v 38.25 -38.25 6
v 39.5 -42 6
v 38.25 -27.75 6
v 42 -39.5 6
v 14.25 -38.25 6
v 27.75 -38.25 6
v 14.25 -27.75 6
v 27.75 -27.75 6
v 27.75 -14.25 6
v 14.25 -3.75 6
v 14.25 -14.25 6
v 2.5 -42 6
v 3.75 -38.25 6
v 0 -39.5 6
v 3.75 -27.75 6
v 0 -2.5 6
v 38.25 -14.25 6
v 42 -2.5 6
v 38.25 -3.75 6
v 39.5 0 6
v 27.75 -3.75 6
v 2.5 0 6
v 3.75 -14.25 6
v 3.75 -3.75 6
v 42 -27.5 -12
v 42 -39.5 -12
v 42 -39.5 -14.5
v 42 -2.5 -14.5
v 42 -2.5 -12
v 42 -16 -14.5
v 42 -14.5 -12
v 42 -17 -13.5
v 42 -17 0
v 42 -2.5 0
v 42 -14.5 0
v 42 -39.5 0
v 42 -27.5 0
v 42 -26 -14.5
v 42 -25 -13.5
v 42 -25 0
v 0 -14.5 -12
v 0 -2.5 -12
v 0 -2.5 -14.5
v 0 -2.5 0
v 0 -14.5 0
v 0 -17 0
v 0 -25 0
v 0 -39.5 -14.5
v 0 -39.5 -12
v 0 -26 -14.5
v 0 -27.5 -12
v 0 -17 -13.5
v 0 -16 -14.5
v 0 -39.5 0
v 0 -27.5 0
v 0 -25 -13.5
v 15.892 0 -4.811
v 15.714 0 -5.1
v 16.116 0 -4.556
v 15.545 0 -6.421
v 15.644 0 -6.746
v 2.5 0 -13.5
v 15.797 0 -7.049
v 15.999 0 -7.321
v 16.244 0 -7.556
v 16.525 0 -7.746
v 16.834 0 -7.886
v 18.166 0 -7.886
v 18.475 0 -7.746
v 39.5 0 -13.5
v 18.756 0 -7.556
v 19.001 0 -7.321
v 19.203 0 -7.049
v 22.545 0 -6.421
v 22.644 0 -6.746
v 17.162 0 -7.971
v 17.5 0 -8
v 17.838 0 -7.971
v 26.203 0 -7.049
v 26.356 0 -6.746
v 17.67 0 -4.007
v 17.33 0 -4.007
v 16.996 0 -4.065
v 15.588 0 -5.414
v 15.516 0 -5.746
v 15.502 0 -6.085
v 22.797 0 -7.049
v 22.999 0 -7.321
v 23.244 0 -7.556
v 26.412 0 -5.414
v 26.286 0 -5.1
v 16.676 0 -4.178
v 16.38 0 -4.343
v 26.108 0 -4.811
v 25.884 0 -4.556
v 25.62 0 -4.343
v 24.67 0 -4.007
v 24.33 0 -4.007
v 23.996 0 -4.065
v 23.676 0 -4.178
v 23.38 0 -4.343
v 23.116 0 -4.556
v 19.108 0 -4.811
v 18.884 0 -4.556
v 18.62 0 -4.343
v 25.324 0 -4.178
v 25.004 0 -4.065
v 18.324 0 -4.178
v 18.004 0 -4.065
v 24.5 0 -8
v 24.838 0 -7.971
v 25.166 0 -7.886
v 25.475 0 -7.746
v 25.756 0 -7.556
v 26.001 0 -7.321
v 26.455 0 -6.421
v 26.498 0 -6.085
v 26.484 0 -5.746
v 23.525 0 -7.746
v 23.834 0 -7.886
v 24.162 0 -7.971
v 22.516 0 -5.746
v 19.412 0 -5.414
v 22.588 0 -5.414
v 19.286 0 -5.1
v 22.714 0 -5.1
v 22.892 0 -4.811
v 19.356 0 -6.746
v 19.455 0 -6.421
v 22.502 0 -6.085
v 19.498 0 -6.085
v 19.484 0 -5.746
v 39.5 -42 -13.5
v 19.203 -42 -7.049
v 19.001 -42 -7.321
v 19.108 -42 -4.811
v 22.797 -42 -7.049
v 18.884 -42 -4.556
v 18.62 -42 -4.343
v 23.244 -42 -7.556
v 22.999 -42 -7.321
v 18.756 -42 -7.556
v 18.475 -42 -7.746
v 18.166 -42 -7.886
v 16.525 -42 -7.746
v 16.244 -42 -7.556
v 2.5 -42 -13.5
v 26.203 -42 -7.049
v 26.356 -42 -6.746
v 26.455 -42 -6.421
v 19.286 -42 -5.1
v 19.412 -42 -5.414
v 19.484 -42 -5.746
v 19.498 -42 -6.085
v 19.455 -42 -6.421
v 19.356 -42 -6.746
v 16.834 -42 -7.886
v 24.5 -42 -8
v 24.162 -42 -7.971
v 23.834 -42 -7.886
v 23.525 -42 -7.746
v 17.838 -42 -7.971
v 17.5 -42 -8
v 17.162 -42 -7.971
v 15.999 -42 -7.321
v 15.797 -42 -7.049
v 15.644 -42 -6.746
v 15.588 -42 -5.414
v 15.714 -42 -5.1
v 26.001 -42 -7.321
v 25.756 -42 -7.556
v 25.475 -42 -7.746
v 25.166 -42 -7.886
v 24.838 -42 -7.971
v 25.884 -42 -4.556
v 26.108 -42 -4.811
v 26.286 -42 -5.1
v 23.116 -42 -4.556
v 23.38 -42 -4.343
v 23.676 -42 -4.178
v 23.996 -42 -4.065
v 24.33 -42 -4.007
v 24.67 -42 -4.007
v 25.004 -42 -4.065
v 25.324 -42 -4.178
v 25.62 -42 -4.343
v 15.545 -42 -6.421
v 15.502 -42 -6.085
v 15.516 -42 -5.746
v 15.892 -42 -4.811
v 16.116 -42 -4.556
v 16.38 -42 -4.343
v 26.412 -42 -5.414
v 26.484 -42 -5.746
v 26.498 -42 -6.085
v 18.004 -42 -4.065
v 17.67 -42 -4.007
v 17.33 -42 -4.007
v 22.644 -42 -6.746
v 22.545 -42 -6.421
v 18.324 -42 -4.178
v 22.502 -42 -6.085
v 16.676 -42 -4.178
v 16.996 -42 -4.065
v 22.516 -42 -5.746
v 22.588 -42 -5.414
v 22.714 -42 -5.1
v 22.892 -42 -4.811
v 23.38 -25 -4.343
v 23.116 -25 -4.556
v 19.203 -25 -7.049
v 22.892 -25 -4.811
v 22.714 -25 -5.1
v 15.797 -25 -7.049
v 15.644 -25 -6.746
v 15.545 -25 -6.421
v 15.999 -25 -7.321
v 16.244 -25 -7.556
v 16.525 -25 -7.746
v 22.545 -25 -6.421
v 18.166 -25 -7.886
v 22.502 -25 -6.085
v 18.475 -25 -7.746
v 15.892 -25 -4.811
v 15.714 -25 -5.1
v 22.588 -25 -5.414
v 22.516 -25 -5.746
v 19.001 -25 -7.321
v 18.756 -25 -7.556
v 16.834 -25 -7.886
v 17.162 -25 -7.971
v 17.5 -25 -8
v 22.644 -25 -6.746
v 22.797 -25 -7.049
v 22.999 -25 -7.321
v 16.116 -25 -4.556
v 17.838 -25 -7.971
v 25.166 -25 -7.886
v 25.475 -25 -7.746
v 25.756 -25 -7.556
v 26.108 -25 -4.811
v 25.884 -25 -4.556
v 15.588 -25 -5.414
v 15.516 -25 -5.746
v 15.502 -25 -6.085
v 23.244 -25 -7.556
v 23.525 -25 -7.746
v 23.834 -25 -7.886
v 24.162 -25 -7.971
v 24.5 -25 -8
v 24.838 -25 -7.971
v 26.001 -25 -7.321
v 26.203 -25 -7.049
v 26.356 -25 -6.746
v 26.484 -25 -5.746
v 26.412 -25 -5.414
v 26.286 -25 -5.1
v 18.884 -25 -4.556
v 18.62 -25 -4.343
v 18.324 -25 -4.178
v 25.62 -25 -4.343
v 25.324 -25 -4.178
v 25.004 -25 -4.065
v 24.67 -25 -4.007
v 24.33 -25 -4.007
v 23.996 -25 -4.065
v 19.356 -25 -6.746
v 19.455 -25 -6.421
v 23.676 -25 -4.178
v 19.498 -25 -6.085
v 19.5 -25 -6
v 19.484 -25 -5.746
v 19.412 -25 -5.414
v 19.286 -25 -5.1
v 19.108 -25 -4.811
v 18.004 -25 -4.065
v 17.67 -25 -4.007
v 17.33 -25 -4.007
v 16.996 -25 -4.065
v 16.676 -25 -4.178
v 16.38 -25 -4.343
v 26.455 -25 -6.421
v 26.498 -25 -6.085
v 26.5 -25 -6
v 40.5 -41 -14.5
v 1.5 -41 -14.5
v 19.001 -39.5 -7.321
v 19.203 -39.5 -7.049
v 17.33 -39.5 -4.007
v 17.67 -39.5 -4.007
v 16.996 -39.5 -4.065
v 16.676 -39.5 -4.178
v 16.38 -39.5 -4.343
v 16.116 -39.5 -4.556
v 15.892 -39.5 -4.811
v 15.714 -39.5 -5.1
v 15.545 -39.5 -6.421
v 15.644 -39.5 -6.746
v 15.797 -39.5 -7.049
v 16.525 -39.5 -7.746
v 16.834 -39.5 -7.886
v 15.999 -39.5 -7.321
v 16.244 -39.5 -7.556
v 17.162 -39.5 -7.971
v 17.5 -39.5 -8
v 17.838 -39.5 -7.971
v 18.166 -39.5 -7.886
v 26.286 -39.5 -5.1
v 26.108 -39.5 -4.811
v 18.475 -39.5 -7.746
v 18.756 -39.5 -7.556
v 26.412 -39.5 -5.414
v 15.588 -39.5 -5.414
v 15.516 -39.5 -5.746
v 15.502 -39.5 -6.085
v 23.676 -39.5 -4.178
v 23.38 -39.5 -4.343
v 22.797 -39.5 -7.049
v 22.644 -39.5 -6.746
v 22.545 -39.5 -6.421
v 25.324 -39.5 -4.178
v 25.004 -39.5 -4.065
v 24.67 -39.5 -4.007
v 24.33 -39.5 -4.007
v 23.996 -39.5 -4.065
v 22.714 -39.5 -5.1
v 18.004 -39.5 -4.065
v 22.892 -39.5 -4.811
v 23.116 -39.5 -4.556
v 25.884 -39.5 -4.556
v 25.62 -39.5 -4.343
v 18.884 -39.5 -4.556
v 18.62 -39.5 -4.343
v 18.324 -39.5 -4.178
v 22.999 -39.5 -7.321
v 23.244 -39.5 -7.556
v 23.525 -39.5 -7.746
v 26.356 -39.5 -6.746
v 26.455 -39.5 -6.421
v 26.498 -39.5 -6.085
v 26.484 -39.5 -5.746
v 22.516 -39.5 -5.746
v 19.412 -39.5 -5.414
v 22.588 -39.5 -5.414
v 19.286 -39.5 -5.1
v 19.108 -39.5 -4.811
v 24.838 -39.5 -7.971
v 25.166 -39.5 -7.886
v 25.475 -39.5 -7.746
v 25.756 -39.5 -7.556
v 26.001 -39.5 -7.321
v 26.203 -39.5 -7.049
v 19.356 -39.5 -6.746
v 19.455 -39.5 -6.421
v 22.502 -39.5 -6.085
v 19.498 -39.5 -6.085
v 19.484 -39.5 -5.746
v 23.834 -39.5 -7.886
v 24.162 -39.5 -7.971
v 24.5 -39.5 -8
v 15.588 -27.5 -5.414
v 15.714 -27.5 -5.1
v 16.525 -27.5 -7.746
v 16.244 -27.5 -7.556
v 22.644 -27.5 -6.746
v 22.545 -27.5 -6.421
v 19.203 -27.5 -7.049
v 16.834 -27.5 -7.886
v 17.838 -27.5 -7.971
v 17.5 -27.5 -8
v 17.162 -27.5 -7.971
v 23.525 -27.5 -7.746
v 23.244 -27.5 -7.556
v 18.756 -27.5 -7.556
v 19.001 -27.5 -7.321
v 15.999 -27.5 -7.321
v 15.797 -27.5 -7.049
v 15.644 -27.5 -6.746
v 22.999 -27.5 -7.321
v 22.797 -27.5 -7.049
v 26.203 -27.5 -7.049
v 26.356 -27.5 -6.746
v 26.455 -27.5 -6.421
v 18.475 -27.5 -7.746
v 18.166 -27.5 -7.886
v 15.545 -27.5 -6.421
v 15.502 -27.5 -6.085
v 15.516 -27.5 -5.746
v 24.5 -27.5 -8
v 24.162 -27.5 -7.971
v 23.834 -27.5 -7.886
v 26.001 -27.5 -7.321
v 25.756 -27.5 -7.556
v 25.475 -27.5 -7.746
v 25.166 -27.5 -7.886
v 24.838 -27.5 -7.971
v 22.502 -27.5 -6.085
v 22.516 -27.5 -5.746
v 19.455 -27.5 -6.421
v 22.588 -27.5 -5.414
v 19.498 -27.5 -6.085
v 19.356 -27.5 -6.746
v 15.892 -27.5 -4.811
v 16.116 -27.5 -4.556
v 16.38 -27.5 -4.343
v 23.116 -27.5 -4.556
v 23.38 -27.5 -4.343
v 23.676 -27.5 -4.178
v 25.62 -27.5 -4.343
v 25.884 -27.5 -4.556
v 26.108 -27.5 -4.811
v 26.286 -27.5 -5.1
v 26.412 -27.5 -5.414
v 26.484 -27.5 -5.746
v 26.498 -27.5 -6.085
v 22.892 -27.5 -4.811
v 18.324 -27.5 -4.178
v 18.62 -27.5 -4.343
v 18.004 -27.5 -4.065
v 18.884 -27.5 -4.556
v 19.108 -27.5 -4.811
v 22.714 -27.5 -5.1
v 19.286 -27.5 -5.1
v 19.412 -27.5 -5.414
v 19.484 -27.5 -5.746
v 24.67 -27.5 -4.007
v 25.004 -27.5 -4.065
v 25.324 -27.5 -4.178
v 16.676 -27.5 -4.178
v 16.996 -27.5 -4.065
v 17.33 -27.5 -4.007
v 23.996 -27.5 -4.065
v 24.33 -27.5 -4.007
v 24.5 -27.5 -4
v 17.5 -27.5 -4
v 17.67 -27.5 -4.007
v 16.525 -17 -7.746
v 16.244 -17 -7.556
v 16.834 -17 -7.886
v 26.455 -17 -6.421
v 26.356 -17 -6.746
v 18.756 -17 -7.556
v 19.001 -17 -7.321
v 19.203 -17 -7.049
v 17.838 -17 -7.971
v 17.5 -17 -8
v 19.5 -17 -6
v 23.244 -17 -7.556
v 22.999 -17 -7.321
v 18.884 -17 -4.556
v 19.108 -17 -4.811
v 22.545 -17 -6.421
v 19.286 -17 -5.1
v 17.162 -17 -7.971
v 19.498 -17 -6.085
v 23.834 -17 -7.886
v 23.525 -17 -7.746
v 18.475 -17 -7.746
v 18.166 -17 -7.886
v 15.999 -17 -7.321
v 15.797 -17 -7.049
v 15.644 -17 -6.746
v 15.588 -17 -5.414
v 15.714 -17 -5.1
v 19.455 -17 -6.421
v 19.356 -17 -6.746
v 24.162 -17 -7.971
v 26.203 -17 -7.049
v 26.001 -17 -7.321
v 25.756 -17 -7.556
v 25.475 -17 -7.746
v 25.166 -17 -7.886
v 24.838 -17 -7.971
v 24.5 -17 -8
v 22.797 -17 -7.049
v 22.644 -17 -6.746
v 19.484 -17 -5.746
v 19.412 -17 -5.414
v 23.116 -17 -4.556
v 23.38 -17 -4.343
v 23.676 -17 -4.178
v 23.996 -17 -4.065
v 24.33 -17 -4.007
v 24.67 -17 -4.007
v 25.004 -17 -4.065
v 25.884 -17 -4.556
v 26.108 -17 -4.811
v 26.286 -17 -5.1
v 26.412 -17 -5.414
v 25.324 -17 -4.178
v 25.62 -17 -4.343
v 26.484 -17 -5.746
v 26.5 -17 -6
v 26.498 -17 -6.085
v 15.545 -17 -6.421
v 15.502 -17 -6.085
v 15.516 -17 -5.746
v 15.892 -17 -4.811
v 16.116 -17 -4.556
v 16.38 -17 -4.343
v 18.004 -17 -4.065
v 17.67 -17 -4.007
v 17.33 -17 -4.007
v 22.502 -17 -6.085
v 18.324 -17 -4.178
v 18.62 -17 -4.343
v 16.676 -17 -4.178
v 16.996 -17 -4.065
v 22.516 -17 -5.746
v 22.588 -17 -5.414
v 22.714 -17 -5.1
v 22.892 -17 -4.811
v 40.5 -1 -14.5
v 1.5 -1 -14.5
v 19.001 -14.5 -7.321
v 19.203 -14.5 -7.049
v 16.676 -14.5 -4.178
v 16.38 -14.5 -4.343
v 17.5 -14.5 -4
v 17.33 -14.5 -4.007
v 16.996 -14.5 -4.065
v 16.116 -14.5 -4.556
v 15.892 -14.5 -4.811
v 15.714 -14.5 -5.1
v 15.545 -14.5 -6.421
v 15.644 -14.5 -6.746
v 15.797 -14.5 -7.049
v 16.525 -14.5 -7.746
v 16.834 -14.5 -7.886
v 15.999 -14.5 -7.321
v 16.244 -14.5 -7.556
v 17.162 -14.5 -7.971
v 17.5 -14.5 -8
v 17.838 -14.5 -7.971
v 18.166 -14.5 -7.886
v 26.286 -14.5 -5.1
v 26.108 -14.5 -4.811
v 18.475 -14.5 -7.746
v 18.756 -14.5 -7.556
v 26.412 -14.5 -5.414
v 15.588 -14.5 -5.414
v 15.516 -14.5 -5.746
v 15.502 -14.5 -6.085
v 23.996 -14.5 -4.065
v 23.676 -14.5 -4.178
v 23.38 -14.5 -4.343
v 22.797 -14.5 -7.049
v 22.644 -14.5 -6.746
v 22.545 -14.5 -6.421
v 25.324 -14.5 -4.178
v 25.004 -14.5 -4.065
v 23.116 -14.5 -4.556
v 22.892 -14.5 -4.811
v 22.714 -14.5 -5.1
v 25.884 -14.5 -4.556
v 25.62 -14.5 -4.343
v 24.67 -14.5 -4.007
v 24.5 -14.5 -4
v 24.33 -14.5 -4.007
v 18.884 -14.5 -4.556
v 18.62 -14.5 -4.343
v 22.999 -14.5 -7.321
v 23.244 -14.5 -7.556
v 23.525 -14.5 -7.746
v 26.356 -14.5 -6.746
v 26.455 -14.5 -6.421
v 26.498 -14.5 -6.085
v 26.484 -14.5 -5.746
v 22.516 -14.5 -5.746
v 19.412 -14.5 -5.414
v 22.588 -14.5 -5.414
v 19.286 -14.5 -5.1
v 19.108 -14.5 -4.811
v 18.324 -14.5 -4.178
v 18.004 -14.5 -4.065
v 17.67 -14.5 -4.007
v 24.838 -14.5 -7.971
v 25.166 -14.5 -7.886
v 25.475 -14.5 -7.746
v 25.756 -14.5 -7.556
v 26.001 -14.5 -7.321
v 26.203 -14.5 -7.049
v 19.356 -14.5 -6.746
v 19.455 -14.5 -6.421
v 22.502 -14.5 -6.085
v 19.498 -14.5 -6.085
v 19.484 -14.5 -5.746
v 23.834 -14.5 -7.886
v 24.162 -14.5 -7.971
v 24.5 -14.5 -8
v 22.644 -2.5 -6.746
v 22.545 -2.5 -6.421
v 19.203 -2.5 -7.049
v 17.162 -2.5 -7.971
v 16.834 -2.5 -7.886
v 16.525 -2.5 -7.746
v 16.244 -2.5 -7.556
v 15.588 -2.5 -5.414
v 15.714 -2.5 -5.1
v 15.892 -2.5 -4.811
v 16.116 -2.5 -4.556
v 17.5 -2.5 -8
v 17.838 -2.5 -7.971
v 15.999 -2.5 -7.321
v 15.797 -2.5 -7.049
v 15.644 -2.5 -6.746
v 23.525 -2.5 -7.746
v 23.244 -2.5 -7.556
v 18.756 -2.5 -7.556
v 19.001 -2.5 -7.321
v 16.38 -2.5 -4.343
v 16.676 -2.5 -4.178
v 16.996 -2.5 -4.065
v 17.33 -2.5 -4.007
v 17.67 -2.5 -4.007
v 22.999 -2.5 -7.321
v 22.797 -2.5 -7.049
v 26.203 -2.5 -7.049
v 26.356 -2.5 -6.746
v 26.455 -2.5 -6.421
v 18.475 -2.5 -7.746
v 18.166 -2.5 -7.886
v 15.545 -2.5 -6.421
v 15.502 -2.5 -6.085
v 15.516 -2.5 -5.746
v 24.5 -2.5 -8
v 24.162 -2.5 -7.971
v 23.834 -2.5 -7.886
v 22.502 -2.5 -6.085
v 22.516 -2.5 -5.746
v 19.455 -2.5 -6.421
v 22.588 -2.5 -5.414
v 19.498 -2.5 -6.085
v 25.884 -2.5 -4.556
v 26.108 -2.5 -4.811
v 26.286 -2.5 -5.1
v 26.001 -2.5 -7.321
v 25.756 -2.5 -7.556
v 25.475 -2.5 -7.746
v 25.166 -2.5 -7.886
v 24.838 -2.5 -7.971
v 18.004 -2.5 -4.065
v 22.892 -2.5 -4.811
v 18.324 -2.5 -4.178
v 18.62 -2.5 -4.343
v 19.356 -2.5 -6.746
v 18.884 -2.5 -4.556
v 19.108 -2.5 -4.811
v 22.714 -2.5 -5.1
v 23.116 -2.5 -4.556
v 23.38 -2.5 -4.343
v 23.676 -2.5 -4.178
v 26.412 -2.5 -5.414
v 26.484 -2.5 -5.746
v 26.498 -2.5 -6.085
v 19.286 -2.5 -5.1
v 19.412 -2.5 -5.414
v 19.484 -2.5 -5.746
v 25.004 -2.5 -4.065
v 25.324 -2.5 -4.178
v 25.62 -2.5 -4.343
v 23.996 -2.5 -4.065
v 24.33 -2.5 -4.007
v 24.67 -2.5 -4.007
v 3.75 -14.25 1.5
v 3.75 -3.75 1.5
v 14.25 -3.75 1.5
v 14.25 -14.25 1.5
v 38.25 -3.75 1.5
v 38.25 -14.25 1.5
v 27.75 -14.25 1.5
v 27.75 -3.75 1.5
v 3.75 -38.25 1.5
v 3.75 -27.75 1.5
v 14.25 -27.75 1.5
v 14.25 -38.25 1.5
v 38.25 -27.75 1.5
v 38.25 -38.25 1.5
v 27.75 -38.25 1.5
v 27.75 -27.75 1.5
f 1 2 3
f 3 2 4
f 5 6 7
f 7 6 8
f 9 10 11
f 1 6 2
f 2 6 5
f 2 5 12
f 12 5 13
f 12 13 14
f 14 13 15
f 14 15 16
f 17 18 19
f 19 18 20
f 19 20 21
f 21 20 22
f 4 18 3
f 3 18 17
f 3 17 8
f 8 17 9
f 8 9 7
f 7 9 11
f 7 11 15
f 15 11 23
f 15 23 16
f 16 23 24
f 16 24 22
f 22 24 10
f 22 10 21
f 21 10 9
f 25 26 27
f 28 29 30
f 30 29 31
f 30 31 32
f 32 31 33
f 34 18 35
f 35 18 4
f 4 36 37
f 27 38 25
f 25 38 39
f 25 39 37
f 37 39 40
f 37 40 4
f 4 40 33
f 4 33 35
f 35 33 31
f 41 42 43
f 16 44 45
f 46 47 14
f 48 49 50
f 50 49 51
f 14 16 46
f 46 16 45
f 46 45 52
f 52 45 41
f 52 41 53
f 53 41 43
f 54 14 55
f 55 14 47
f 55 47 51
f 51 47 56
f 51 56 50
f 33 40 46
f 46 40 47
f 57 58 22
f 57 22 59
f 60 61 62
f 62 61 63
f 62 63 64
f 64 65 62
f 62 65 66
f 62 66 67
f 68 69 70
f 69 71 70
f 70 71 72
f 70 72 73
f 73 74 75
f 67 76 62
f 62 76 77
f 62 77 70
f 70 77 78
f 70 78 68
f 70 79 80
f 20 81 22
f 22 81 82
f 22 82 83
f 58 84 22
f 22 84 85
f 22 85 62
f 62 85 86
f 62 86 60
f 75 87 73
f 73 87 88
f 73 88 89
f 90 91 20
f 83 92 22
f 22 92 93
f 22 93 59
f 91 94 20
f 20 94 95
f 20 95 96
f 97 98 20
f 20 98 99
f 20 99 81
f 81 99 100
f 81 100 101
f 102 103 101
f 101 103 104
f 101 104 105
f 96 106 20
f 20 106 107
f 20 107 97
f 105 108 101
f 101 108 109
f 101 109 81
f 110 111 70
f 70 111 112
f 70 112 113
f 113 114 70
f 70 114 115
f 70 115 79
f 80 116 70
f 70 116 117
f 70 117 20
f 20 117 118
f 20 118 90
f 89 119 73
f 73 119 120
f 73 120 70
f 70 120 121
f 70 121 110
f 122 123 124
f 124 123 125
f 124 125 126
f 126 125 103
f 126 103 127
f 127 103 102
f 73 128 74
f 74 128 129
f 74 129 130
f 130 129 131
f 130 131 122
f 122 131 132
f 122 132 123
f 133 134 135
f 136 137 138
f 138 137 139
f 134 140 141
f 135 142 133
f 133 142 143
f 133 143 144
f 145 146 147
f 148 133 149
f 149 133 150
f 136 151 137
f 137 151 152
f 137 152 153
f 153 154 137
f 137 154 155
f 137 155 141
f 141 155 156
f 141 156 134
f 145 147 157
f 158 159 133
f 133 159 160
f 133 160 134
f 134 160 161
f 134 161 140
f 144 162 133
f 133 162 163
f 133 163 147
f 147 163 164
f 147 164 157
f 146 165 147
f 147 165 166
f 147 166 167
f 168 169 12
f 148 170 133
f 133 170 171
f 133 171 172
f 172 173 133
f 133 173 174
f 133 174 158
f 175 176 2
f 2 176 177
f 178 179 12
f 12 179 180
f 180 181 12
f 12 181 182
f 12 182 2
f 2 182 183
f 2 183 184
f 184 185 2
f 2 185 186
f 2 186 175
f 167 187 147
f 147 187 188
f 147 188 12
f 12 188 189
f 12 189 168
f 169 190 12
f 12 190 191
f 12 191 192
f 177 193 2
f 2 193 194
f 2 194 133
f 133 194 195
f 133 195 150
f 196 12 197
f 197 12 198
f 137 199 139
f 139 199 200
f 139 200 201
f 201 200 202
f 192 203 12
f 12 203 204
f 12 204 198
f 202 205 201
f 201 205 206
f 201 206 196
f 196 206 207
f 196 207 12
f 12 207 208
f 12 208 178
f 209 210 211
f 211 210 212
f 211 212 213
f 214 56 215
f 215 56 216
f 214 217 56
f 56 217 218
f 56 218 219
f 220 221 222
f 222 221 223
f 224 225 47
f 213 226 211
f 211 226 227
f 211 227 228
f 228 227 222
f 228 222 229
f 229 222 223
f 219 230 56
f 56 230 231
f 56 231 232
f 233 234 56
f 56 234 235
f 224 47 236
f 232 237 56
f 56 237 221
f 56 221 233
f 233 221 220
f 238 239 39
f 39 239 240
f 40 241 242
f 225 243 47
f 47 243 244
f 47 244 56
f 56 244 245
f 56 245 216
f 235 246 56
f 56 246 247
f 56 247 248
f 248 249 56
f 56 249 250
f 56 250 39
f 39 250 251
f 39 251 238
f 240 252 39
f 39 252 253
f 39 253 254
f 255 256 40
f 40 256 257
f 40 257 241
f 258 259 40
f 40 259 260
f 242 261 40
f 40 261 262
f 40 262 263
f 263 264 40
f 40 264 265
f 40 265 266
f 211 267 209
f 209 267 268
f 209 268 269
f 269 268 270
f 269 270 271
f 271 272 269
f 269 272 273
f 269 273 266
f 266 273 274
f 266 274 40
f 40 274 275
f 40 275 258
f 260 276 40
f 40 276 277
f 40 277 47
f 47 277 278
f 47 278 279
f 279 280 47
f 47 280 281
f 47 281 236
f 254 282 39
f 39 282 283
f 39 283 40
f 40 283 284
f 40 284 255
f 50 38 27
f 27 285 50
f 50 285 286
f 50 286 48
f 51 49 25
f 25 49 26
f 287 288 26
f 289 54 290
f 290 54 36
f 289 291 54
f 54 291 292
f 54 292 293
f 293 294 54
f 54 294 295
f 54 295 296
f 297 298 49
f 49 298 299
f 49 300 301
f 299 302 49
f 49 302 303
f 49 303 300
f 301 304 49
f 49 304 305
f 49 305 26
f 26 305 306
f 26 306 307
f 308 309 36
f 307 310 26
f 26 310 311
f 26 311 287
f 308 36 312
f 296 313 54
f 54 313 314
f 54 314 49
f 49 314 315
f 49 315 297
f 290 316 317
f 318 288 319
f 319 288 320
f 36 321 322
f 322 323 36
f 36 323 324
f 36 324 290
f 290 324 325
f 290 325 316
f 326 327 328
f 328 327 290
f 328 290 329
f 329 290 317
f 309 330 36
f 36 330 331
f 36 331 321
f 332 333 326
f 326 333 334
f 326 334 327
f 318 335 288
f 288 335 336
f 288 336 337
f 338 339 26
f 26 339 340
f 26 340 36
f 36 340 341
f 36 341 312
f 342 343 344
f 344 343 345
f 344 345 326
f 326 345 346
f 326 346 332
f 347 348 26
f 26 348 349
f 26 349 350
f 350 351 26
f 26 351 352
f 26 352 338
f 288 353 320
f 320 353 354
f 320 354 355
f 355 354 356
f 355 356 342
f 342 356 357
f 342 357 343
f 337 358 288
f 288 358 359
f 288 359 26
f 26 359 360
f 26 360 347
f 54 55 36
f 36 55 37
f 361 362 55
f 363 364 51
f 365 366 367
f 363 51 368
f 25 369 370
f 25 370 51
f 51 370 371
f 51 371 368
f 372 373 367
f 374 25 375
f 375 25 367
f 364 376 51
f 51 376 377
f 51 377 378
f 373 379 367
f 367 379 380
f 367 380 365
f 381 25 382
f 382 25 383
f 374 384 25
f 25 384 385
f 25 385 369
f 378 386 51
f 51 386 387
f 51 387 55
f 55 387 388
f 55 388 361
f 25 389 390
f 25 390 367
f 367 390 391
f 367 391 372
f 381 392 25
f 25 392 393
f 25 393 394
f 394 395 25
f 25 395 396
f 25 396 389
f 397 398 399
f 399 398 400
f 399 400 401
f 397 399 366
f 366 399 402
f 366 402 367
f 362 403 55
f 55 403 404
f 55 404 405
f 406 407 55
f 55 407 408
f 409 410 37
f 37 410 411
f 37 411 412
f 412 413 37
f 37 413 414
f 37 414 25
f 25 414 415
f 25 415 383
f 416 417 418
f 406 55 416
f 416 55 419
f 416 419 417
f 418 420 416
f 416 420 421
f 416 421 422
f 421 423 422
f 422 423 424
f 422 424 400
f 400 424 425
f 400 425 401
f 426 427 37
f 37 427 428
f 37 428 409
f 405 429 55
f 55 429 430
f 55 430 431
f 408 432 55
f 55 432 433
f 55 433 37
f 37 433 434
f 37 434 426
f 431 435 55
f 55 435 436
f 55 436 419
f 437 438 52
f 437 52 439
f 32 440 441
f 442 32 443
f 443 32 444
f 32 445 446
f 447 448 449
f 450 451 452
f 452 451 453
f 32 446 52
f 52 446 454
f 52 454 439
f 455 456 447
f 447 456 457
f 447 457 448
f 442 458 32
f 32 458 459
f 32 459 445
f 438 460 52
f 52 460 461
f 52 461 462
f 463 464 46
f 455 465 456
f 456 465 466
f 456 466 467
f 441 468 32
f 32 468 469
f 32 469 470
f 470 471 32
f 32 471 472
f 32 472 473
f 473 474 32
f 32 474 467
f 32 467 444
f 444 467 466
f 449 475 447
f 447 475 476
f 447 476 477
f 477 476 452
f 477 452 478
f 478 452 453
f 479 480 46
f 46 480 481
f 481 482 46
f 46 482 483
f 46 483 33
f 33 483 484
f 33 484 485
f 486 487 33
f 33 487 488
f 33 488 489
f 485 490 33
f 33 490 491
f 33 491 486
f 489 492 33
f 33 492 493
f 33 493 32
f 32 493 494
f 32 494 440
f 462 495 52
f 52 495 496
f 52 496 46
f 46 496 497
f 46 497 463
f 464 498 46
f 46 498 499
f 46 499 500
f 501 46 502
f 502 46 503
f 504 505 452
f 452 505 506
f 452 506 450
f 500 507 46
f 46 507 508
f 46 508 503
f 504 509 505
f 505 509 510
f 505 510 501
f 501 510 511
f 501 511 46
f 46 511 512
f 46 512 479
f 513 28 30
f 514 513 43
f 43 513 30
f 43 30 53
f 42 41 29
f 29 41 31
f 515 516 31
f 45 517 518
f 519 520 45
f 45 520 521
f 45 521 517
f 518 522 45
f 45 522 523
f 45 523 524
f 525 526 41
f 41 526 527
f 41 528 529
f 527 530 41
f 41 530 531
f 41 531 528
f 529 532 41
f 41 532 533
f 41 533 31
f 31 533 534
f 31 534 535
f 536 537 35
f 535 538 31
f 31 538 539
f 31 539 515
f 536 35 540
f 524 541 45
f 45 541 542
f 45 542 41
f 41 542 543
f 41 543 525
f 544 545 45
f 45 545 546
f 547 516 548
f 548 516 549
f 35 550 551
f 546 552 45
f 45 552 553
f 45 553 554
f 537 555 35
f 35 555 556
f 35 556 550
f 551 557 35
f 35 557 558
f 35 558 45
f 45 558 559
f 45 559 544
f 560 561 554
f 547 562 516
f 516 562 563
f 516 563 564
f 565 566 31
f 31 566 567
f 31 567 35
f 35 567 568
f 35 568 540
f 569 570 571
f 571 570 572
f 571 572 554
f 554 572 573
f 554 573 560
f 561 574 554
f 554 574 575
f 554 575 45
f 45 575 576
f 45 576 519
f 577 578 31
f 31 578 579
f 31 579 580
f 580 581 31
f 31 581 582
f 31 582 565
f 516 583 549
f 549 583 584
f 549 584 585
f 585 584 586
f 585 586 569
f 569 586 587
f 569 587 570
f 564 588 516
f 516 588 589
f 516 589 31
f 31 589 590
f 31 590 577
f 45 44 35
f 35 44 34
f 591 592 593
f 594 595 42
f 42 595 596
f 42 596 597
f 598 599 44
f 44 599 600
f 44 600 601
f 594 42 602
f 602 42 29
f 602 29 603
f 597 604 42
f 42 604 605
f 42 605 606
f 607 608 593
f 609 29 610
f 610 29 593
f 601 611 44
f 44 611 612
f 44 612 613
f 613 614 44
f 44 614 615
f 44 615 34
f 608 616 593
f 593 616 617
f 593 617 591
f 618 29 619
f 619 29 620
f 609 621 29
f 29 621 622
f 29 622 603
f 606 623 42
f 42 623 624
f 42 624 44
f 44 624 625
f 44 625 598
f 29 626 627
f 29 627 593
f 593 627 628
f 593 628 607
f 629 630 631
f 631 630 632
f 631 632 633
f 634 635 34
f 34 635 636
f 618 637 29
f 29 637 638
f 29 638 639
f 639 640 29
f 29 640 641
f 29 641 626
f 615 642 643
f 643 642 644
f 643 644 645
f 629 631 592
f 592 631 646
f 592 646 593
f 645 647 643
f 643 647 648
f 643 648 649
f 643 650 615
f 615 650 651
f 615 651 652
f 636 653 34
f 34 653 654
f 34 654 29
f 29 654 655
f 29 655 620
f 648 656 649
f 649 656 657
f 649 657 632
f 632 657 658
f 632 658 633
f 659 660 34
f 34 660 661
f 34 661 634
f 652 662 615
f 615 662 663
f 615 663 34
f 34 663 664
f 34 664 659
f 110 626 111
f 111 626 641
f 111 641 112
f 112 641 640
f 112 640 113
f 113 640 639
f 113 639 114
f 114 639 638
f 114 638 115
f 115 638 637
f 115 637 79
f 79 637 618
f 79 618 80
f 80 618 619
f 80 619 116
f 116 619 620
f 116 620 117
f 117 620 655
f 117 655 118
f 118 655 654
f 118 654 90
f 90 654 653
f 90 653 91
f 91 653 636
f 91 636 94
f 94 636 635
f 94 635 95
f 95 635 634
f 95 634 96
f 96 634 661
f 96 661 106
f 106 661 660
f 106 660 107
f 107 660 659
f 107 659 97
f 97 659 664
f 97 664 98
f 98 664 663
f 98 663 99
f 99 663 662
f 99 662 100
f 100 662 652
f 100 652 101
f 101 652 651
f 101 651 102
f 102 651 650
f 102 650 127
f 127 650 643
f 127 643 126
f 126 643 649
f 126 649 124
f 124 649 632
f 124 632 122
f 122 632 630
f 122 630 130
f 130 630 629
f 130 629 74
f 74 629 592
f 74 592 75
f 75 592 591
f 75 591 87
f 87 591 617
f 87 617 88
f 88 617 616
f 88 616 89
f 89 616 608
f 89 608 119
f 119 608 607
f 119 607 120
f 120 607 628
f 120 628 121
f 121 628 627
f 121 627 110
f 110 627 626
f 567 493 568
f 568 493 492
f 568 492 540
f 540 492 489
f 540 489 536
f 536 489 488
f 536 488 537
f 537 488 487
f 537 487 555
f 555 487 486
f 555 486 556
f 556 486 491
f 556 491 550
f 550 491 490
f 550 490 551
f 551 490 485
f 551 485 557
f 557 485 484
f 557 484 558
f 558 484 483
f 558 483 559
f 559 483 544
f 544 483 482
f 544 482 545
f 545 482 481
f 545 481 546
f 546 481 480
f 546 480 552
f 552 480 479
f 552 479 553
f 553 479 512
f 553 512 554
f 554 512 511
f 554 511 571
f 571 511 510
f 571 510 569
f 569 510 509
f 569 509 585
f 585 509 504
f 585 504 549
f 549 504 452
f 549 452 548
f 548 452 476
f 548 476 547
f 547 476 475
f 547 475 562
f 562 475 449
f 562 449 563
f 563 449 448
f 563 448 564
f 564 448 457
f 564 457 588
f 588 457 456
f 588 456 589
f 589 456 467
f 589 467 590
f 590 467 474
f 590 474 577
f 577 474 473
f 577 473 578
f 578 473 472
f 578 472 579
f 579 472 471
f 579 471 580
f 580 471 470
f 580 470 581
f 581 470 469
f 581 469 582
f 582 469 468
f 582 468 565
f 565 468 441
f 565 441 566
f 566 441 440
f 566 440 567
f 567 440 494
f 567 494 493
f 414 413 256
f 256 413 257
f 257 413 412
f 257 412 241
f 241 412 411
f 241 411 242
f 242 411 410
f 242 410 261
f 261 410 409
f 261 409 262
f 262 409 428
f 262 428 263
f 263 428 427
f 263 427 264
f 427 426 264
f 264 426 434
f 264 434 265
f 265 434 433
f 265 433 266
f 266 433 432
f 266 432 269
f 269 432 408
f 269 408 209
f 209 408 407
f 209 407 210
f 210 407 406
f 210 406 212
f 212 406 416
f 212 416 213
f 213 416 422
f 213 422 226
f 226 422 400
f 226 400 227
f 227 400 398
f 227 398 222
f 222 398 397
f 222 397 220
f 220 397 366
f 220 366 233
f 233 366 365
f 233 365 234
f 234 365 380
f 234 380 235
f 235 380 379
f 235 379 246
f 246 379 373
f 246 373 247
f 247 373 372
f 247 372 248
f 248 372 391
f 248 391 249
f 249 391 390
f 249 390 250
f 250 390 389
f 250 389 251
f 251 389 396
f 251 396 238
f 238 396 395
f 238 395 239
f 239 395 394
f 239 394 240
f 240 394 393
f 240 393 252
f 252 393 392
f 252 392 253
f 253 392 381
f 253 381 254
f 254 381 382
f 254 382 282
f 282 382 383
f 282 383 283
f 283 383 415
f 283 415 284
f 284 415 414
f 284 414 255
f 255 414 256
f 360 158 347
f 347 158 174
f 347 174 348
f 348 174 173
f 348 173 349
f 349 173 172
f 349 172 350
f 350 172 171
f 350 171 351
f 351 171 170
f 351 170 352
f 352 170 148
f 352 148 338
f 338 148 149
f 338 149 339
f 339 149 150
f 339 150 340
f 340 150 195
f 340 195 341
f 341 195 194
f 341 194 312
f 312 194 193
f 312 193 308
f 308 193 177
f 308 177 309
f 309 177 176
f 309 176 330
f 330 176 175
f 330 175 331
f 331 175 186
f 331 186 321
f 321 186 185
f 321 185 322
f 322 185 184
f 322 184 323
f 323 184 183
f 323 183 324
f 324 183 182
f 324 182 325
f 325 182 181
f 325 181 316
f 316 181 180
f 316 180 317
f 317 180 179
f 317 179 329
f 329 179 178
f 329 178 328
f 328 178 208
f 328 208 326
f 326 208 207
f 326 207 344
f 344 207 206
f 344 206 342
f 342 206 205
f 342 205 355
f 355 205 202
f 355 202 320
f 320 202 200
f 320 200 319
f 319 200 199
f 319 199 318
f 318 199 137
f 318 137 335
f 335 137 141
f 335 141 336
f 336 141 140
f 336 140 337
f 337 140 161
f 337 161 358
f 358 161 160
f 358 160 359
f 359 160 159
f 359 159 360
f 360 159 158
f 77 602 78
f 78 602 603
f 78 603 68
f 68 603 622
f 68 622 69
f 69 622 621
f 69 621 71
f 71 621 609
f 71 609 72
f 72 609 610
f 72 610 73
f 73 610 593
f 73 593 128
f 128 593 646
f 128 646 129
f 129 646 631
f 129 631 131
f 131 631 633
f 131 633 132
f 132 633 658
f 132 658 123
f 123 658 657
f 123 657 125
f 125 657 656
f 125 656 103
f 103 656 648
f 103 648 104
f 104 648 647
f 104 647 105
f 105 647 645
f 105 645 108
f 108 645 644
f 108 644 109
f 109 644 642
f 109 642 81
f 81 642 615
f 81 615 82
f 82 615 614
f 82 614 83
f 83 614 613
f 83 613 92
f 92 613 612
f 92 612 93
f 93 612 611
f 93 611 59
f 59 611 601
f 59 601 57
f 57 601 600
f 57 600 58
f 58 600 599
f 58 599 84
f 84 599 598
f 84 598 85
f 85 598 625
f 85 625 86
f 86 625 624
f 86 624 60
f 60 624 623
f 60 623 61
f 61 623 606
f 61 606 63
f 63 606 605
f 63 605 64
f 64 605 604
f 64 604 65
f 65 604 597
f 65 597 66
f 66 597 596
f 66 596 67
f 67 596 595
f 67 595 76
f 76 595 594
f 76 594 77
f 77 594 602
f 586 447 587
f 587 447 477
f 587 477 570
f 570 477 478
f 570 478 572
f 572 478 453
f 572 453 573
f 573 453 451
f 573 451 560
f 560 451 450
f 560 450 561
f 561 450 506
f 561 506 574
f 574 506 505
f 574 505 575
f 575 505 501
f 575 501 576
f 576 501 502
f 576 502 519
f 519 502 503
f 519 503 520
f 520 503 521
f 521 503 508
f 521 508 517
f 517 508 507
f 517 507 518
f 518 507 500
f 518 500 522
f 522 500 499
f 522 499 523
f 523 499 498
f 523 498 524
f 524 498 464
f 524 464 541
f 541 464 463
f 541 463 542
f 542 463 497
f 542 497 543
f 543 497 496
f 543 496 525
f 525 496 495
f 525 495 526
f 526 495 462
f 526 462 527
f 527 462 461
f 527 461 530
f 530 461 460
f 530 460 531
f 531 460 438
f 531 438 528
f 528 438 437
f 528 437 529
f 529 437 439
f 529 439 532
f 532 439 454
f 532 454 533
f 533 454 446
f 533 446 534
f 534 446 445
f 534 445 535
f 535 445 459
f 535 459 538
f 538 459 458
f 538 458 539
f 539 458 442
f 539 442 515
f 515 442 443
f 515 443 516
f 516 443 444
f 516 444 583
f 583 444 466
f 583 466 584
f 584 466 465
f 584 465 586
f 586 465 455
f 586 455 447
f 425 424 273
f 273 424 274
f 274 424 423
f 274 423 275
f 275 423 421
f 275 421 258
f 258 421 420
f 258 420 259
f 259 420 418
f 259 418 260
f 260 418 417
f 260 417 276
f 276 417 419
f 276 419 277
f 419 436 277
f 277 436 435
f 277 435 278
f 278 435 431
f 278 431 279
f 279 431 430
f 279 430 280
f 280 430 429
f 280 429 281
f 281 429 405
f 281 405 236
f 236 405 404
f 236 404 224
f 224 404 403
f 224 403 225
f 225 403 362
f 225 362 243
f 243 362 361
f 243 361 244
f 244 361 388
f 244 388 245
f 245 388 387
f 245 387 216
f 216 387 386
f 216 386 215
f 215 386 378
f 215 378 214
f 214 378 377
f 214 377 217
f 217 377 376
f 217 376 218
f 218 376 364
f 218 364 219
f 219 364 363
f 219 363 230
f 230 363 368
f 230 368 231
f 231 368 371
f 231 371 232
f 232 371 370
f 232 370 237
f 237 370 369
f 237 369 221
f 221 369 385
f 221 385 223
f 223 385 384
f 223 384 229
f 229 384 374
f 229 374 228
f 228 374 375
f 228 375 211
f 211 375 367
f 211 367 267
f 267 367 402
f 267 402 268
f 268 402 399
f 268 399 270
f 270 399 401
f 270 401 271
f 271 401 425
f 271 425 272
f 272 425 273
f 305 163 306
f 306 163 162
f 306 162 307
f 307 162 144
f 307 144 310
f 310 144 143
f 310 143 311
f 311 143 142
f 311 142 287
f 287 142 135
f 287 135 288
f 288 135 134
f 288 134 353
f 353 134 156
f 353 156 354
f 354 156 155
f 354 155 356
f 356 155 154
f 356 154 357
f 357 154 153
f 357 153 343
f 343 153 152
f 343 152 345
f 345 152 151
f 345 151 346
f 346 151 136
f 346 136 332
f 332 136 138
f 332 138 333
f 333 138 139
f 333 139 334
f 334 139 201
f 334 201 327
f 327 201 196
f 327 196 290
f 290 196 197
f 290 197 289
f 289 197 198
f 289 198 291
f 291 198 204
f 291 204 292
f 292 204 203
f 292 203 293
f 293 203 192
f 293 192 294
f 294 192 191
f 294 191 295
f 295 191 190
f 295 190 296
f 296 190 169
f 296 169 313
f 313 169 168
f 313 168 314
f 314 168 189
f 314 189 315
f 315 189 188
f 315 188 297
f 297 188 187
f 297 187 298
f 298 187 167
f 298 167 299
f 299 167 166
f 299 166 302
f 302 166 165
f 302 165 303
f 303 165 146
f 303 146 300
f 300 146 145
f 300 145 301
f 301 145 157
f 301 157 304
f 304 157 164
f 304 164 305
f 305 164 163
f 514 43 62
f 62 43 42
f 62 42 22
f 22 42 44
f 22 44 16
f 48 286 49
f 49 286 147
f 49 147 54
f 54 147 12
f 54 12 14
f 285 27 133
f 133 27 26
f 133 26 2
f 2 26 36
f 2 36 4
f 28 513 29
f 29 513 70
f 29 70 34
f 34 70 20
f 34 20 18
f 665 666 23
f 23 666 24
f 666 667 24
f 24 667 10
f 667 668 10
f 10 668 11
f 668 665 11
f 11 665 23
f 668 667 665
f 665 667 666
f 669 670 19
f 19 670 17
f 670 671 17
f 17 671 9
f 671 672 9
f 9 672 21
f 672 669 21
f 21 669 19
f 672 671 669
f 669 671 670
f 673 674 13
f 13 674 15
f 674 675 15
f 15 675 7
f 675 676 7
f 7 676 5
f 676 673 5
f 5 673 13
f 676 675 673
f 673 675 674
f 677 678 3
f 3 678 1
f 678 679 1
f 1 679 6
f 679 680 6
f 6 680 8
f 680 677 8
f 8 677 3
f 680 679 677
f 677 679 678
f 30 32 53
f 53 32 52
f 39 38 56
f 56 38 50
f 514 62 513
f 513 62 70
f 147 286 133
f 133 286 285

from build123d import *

# Parameters (mm, degrees)
ESQUISSE1_W               = 42
ESQUISSE1_H               = 42
BOSS_EXTRU_1_DEPTH        = 6
ESQUISSE2_W               = 42
ESQUISSE2_H               = 17
BOSS_EXTRU_3_DEPTH        = 14.5
ESQUISSE3_W               = 12
ESQUISSE3_H               = 12
ENL_V_MAT_EXTRU_3_DEPTH   = 62.141229952
ESQUISSE4_R               = 2
ENL_V_MAT_EXTRU_4_DEPTH   = 42
CHANFREIN1_SIZE           = 2.5
ESQUISSE5_W               = 10.5
ESQUISSE5_H               = 10.5
ENL_V_MAT_EXTRU_5_DEPTH   = 4.5
SYM_TRIE3_COPY_1_SKETCH_W = 10.5
SYM_TRIE3_COPY_1_SKETCH_H = 10.5
SYM_TRIE3_COPY_1_DEPTH    = 4.5
CHANFREIN2_SIZE           = 1


with BuildPart() as part:
    # Esquisse1 → Boss.-Extru.1 (new body)
    with BuildSketch(Plane.XY):
        with Locations((21, -21)):
            Rectangle(ESQUISSE1_W, ESQUISSE1_H)
    extrude(amount=BOSS_EXTRU_1_DEPTH)

    # Esquisse2 → Boss.-Extru.3 (add)
    with BuildSketch(Plane(origin=(0, 0, 0), x_dir=(-1, 0, 0), z_dir=(0, 0, -1))):
        with Locations((-21, -33.5)):
            Rectangle(ESQUISSE2_W, ESQUISSE2_H)
    boss_extru_3 = extrude(amount=BOSS_EXTRU_3_DEPTH)

    # Esquisse3 → Enlèv. mat.-Extru.3 (cut, through all)
    with BuildSketch(Plane(origin=(42, 0, 0), x_dir=(0, 0, -1), z_dir=(1, 0, 0))):
        with Locations((6, -33.5)):
            Rectangle(ESQUISSE3_W, ESQUISSE3_H)
    enl_v_mat_extru_3 = extrude(amount=-ENL_V_MAT_EXTRU_3_DEPTH, mode=Mode.SUBTRACT)

    # Symétrie1: Boss.-Extru.3, Enlèv. mat.-Extru.3 across plane
    add(boss_extru_3.mirror(Plane(origin=(0, -21, 0), x_dir=(0, 0, 1), z_dir=(0, -1, 0))))
    add(enl_v_mat_extru_3.mirror(Plane(origin=(0, -21, 0), x_dir=(0, 0, 1), z_dir=(0, -1, 0))), mode=Mode.SUBTRACT)

    # Esquisse4 → Enlèv. mat.-Extru.4 (cut)
    with BuildSketch(Plane.XZ.offset(42)):
        with Locations(Location((24.5, -6, 0), (0, 0, 270))):
            Circle(ESQUISSE4_R)
        with Locations(Location((17.5, -6, 0), (0, 0, 270))):
            Circle(ESQUISSE4_R)
    extrude(amount=-ENL_V_MAT_EXTRU_4_DEPTH, mode=Mode.SUBTRACT)

    # Chanfrein1
    chanfrein1_edges = [part.edges().sort_by_distance(p)[0] for p in [
        (42, -42, -4.25),
        (0, -42, -4.25),
        (0, 0, -4.25),
        (42, 0, -4.25),
    ]]
    chamfer(chanfrein1_edges, length=CHANFREIN1_SIZE - 0.0001)  # a hair under: the kernel refuses the full size

    # Esquisse5 → Enlèv. mat.-Extru.5 (cut)
    with BuildSketch(Plane.XY.offset(6)):
        with Locations((9, -9)):
            Rectangle(ESQUISSE5_W, ESQUISSE5_H)
    enl_v_mat_extru_5 = extrude(amount=-ENL_V_MAT_EXTRU_5_DEPTH, mode=Mode.SUBTRACT)

    # Symétrie2: Enlèv. mat.-Extru.5 across plane
    add(enl_v_mat_extru_5.mirror(Plane.ZY.offset(-21)), mode=Mode.SUBTRACT)

    # Symétrie3: Enlèv. mat.-Extru.5 across plane
    add(enl_v_mat_extru_5.mirror(Plane(origin=(0, -21, 0), x_dir=(0, 0, 1), z_dir=(0, -1, 0))), mode=Mode.SUBTRACT)

    # Symétrie3 copy 1 sketch → Symétrie3 copy 1 (cut)
    with BuildSketch(Plane(origin=(42, -42, 6), x_dir=(-1, 0, 0), z_dir=(0, 0, 1))):
        with Locations((9, -9)):
            Rectangle(SYM_TRIE3_COPY_1_SKETCH_W, SYM_TRIE3_COPY_1_SKETCH_H)
    extrude(amount=-SYM_TRIE3_COPY_1_DEPTH, mode=Mode.SUBTRACT)

    # Chanfrein2
    chanfrein2_edges = [part.edges().sort_by_distance(p)[0] for p in [
        (21, 0, -14.5),
        (21, -42, -14.5),
        (21, -25, -14.5),
        (21, -17, -14.5),
    ]]
    chamfer(chanfrein2_edges, length=CHANFREIN2_SIZE)


solid = part.part
